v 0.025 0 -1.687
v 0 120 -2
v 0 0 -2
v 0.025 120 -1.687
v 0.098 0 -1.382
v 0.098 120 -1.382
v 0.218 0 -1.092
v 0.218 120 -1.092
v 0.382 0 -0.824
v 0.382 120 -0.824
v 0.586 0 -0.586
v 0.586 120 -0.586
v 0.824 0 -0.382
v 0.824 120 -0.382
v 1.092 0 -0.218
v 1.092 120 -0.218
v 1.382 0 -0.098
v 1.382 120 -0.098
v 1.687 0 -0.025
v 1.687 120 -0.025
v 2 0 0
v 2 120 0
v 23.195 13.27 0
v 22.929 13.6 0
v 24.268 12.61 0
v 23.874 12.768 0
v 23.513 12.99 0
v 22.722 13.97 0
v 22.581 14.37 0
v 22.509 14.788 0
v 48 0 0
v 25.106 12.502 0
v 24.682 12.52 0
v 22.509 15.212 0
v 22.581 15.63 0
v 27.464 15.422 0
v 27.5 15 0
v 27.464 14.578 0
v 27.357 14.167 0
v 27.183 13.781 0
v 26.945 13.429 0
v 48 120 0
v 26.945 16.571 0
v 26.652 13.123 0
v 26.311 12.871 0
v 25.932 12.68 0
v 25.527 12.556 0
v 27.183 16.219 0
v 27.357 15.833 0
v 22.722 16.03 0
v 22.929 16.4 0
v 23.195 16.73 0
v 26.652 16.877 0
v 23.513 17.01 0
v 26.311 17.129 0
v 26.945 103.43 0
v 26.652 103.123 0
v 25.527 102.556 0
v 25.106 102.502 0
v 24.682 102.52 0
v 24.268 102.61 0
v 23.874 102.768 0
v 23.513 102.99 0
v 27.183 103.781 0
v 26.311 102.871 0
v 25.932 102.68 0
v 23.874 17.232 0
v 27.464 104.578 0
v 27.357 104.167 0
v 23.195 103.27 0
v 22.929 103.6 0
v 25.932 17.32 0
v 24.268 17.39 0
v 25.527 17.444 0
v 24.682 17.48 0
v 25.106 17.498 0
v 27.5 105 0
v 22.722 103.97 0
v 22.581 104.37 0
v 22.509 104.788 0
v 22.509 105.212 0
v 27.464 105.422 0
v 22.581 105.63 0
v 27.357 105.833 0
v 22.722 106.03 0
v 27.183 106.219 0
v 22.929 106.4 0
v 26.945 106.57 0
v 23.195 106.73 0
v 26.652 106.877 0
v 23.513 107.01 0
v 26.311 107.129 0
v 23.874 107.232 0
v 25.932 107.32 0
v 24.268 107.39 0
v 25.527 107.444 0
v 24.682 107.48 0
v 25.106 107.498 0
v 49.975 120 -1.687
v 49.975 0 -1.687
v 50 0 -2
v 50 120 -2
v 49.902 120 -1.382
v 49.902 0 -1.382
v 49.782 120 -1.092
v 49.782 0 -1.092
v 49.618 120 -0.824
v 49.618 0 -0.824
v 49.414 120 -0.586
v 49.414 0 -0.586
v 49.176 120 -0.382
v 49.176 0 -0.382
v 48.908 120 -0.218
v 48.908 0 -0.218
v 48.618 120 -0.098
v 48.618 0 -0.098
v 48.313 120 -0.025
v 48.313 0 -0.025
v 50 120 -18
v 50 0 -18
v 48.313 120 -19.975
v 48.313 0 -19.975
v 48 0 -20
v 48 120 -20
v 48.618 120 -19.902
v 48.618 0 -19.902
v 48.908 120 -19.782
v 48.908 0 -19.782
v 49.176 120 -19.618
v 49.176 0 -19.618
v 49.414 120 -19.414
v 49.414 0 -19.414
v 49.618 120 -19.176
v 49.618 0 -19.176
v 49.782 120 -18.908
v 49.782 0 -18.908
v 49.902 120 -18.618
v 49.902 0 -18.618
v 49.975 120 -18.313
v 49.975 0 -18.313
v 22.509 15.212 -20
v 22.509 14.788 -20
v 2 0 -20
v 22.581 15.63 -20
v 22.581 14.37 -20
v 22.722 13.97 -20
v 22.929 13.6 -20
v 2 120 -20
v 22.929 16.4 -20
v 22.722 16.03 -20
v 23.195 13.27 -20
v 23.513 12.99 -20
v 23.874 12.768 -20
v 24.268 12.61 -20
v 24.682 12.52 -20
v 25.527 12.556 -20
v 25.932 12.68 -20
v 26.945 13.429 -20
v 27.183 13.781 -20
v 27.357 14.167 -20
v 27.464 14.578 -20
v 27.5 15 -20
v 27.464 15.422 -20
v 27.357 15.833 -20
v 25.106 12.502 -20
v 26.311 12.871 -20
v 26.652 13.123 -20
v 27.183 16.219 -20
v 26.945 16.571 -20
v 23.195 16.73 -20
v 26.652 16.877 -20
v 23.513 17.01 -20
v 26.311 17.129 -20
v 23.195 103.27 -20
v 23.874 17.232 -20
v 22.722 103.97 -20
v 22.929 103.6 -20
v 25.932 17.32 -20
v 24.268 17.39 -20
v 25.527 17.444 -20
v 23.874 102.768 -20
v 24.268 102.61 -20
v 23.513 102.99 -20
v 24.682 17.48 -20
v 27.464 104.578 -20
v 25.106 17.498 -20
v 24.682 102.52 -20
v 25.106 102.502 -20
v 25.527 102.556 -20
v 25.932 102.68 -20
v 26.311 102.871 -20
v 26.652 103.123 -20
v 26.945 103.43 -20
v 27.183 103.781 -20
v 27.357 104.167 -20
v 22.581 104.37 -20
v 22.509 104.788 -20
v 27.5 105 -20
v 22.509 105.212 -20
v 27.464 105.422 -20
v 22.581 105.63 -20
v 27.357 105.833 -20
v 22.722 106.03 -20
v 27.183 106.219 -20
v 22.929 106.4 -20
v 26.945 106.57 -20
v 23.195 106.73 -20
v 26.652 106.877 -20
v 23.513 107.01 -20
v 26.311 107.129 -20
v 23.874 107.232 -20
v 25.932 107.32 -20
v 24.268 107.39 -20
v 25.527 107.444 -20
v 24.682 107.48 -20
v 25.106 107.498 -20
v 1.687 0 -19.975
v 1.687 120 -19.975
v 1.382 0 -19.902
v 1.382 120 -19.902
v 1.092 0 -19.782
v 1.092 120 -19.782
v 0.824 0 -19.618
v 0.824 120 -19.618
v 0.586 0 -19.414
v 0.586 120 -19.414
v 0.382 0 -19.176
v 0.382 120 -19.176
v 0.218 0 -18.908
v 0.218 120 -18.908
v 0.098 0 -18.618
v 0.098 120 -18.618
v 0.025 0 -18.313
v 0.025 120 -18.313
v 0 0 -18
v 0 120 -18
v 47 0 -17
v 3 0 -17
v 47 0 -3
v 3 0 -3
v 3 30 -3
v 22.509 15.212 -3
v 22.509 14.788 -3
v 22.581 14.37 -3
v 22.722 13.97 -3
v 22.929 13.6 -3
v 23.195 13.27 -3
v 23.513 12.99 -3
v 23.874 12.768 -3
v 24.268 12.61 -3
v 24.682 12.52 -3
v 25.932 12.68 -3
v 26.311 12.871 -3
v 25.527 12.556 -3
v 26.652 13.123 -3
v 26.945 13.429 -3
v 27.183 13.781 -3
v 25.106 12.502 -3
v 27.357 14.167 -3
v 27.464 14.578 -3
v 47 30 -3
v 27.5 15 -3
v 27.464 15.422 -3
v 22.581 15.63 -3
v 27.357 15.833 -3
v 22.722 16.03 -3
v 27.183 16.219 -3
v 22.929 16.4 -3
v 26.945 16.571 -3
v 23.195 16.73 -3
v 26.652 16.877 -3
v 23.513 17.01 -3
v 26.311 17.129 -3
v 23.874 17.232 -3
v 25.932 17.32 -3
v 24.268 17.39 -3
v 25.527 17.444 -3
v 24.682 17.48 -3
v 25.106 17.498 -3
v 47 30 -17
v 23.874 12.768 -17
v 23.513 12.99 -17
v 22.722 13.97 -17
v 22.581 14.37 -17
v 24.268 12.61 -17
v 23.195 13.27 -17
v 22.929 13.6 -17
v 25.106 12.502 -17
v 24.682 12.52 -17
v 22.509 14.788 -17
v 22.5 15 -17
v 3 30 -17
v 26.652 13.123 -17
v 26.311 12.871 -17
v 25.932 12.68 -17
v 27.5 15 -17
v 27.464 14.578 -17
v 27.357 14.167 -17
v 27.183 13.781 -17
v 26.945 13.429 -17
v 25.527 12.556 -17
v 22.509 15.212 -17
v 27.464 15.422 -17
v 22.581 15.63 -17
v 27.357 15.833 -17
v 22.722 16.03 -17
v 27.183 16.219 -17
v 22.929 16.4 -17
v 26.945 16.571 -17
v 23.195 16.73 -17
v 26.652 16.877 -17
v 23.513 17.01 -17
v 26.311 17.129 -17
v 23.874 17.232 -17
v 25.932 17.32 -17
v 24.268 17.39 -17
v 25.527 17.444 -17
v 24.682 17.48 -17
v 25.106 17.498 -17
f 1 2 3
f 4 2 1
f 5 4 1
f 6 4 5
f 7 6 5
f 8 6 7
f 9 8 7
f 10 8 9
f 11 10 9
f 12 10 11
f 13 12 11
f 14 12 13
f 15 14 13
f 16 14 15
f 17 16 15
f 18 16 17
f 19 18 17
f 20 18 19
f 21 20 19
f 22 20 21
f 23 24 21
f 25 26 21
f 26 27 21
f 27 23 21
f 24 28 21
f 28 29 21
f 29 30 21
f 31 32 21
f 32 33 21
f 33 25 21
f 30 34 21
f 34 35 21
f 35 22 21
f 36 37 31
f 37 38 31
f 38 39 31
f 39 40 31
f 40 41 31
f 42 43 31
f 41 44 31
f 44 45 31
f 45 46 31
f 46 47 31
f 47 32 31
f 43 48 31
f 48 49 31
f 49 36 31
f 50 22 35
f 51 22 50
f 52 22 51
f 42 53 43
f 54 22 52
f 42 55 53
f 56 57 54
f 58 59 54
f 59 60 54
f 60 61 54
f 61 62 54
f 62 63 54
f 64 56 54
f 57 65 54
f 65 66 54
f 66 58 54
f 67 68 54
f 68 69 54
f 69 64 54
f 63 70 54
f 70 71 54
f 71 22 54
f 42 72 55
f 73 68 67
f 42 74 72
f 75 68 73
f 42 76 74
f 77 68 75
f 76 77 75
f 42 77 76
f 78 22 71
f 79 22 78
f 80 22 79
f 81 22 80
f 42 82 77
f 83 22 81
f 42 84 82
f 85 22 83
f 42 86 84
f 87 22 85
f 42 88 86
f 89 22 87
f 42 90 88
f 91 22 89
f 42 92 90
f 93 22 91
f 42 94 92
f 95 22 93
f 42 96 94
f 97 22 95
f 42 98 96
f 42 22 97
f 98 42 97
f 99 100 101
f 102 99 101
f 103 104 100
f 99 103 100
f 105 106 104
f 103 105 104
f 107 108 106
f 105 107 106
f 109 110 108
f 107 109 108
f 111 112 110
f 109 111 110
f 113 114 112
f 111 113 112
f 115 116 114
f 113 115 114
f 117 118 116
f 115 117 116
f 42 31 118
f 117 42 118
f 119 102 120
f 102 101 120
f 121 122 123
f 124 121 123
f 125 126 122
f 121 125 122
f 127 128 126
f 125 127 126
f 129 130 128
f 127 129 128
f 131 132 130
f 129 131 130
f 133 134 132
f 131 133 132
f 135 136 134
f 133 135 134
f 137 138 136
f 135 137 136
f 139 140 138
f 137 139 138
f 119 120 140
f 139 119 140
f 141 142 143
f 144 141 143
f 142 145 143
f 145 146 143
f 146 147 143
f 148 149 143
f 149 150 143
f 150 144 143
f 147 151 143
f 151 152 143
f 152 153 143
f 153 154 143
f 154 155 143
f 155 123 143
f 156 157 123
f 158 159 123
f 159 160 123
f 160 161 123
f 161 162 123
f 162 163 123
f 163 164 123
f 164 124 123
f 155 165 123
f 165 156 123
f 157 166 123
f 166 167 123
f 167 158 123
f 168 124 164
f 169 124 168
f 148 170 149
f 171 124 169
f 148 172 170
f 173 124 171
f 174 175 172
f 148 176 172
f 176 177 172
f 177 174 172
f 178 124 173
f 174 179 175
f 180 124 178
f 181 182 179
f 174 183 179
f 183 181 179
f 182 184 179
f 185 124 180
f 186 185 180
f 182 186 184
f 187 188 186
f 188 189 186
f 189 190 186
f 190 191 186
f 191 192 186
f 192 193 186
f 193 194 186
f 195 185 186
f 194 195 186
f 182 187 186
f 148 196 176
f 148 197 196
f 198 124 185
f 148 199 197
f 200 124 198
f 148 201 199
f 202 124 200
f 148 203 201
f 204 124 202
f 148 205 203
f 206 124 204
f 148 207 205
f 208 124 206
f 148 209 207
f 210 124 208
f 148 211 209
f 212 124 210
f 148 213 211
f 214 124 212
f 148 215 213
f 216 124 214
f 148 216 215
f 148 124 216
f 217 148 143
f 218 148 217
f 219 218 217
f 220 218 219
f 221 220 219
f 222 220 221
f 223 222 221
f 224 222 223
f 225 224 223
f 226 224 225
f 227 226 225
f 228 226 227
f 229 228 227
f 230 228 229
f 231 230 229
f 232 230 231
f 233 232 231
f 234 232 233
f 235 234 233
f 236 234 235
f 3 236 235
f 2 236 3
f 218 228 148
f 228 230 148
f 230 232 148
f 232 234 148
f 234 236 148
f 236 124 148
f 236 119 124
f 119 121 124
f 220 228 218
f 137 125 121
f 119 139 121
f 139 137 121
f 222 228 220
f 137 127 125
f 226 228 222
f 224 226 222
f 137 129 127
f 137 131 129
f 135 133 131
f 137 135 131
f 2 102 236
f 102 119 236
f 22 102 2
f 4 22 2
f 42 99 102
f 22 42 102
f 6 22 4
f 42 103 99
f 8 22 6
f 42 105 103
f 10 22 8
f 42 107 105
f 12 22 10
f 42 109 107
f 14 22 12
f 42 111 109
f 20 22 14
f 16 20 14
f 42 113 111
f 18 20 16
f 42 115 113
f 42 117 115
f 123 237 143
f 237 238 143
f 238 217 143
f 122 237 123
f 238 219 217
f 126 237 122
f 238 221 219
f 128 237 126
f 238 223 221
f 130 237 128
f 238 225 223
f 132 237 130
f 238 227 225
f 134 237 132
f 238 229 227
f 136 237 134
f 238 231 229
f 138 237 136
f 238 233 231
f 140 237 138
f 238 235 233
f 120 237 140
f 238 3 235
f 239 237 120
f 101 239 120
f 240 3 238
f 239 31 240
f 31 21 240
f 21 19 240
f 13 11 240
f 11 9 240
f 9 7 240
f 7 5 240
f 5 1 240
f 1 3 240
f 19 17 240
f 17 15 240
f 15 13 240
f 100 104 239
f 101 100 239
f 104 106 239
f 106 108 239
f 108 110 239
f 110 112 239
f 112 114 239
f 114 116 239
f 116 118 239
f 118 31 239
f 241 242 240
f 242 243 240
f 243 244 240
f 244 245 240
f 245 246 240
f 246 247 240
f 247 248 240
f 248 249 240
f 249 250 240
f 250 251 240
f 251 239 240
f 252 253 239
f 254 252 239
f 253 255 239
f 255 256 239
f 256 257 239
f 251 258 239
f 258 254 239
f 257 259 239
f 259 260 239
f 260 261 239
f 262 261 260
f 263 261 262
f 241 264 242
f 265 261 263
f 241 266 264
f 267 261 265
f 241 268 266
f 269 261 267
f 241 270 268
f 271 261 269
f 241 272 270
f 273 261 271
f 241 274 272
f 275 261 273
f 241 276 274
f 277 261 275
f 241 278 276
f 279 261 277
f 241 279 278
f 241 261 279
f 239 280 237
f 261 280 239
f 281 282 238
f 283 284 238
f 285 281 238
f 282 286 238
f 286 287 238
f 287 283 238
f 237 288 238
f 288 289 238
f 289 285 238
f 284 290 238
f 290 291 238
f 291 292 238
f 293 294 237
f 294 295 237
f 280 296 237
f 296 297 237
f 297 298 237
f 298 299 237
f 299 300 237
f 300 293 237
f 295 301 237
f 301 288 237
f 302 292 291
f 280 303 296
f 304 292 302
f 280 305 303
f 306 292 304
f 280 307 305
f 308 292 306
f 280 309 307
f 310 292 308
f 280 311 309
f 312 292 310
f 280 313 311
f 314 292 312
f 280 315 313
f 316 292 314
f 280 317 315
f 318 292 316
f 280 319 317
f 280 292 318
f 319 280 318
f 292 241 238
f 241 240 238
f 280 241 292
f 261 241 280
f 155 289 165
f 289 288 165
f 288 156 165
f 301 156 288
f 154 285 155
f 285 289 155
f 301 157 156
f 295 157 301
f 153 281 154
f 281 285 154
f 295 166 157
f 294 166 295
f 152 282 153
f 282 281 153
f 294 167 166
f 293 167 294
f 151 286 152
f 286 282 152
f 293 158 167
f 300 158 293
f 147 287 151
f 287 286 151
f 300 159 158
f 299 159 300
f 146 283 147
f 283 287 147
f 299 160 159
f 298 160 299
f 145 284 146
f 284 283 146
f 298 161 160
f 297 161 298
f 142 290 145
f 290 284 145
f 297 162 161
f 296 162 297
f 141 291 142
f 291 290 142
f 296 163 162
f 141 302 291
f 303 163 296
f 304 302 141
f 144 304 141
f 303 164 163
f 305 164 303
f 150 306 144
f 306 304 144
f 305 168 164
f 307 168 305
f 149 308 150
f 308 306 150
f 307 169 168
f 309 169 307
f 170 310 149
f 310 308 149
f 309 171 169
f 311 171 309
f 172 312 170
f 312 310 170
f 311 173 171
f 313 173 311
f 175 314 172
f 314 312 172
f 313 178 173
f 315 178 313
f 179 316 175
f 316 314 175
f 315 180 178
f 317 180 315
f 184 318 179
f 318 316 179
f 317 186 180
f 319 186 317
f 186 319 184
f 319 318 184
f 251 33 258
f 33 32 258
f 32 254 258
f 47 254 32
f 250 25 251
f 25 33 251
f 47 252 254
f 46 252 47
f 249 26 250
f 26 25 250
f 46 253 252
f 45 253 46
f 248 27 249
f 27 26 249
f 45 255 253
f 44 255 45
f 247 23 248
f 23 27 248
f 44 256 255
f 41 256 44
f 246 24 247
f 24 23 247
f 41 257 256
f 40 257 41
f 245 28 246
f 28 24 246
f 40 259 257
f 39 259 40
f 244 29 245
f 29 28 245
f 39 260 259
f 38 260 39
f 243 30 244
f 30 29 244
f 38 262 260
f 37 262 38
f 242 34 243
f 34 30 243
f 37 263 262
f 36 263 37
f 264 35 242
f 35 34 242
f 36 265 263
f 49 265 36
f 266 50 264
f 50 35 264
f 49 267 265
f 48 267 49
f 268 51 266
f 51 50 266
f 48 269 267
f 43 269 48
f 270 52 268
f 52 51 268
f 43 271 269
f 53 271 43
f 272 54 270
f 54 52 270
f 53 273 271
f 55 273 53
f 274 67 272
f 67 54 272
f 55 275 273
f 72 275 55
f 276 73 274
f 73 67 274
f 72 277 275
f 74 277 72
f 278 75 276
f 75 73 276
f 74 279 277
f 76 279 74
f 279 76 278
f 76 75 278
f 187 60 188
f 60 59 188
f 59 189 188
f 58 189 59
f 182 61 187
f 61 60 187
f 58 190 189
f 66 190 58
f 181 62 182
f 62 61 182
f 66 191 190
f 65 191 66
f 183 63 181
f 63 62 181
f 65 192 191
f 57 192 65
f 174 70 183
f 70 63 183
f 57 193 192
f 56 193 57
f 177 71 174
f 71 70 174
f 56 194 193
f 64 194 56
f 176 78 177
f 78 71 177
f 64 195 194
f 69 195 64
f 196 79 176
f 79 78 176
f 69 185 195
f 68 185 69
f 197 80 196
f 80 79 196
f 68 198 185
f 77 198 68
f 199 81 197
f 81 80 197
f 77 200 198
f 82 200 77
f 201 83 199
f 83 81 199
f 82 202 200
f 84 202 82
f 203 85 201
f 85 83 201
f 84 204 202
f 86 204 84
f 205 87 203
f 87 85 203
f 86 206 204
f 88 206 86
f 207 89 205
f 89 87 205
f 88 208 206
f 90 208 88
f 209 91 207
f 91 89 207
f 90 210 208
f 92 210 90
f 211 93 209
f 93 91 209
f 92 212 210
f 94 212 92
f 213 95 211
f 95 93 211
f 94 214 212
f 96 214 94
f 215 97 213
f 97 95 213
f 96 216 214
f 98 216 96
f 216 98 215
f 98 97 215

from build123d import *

# Parameters (mm, degrees)
BOSS_EXTRUDE1_DEPTH = 120
SKETCH3_W           = 44
SKETCH3_H           = 14
CUT_EXTRUDE2_DEPTH  = 30
SKETCH6_R           = 2.5
CUT_EXTRUDE3_DEPTH  = 30


with BuildPart() as part:
    # Sketch1 → Boss-Extrude1 (new body)
    with BuildSketch(Plane(origin=(0, 0, 0), x_dir=(1, 0, 0), z_dir=(0, 1, 0))):
        with BuildLine():
            Line((2, 0), (48, 0))
            ThreePointArc((48, 0), (49.414213562, 0.585786438), (50, 2))
            Line((50, 2), (50, 18))
            ThreePointArc((50, 18), (49.414213562, 19.414213562), (48, 20))
            Line((48, 20), (2, 20))
            ThreePointArc((2, 20), (0.585786438, 19.414213562), (0, 18))
            Line((0, 18), (0, 2))
            ThreePointArc((0, 2), (0.585786438, 0.585786438), (2, 0))
        make_face()
    extrude(amount=BOSS_EXTRUDE1_DEPTH)

    # Sketch3 → Cut-Extrude2 (cut)
    with BuildSketch(Plane.XZ):
        with Locations((25, -10)):
            Rectangle(SKETCH3_W, SKETCH3_H)
    extrude(amount=-CUT_EXTRUDE2_DEPTH, mode=Mode.SUBTRACT)

    # Sketch6 → Cut-Extrude3 (cut)
    with BuildSketch(Plane.XY):
        with Locations((25, 105)):
            Circle(SKETCH6_R)
        with Locations((25, 15)):
            Circle(SKETCH6_R)
    extrude(amount=-CUT_EXTRUDE3_DEPTH, mode=Mode.SUBTRACT)


solid = part.part
